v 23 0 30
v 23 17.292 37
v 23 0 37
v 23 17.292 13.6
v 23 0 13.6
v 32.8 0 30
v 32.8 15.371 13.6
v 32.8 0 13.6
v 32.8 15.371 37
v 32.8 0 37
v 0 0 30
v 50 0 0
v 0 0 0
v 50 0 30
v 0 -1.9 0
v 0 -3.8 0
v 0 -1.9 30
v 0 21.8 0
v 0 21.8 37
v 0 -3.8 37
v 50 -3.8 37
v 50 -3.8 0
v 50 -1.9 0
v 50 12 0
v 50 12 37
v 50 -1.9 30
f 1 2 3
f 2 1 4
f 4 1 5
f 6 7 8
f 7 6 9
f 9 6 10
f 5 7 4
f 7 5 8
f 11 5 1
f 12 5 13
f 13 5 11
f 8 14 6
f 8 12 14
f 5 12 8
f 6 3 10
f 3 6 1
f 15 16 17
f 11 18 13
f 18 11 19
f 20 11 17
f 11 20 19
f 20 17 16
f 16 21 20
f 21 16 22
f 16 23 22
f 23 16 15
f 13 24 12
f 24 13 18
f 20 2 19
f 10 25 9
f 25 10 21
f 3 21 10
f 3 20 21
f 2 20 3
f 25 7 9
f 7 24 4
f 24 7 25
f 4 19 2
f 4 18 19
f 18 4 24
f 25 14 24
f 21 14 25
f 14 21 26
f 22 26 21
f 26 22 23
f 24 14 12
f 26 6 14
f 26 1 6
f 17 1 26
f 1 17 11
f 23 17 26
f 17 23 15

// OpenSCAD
endstop_l = 27.9;
endstop_l2 = 16.4;
endstop_w = 9.8;
endstop_h = 15.6;

module endstop() {
       union () {
           cube([endstop_w, endstop_h, endstop_l2], false);
           cube([endstop_w, endstop_h+30, endstop_l2+20], false);
       }
}

module pad_base(l,d,h1,h2, grip) {
    base_offset = 0-grip * 2;
    shoulder_sz=7;
    
        difference() {
            union() {
                // translate([0,-2*grip,d-shoulder_sz/2]) cube(size=[l,grip*3,shoulder_sz], center=false);
                linear_extrude(height = d+shoulder_sz, center = false, convexity = 10, twist = 0) {
	            polygon(points=[[0,base_offset], [0,h1], [l,h2],[l,base_offset]]);
	        }
            }
	    translate([-1,-grip,-2]) #cube([l+2,grip,d+2], false);
	    translate([23,0,d-endstop_l2]) #endstop();
        }
}
pad_base(50,30,21.8,12,1.9);
